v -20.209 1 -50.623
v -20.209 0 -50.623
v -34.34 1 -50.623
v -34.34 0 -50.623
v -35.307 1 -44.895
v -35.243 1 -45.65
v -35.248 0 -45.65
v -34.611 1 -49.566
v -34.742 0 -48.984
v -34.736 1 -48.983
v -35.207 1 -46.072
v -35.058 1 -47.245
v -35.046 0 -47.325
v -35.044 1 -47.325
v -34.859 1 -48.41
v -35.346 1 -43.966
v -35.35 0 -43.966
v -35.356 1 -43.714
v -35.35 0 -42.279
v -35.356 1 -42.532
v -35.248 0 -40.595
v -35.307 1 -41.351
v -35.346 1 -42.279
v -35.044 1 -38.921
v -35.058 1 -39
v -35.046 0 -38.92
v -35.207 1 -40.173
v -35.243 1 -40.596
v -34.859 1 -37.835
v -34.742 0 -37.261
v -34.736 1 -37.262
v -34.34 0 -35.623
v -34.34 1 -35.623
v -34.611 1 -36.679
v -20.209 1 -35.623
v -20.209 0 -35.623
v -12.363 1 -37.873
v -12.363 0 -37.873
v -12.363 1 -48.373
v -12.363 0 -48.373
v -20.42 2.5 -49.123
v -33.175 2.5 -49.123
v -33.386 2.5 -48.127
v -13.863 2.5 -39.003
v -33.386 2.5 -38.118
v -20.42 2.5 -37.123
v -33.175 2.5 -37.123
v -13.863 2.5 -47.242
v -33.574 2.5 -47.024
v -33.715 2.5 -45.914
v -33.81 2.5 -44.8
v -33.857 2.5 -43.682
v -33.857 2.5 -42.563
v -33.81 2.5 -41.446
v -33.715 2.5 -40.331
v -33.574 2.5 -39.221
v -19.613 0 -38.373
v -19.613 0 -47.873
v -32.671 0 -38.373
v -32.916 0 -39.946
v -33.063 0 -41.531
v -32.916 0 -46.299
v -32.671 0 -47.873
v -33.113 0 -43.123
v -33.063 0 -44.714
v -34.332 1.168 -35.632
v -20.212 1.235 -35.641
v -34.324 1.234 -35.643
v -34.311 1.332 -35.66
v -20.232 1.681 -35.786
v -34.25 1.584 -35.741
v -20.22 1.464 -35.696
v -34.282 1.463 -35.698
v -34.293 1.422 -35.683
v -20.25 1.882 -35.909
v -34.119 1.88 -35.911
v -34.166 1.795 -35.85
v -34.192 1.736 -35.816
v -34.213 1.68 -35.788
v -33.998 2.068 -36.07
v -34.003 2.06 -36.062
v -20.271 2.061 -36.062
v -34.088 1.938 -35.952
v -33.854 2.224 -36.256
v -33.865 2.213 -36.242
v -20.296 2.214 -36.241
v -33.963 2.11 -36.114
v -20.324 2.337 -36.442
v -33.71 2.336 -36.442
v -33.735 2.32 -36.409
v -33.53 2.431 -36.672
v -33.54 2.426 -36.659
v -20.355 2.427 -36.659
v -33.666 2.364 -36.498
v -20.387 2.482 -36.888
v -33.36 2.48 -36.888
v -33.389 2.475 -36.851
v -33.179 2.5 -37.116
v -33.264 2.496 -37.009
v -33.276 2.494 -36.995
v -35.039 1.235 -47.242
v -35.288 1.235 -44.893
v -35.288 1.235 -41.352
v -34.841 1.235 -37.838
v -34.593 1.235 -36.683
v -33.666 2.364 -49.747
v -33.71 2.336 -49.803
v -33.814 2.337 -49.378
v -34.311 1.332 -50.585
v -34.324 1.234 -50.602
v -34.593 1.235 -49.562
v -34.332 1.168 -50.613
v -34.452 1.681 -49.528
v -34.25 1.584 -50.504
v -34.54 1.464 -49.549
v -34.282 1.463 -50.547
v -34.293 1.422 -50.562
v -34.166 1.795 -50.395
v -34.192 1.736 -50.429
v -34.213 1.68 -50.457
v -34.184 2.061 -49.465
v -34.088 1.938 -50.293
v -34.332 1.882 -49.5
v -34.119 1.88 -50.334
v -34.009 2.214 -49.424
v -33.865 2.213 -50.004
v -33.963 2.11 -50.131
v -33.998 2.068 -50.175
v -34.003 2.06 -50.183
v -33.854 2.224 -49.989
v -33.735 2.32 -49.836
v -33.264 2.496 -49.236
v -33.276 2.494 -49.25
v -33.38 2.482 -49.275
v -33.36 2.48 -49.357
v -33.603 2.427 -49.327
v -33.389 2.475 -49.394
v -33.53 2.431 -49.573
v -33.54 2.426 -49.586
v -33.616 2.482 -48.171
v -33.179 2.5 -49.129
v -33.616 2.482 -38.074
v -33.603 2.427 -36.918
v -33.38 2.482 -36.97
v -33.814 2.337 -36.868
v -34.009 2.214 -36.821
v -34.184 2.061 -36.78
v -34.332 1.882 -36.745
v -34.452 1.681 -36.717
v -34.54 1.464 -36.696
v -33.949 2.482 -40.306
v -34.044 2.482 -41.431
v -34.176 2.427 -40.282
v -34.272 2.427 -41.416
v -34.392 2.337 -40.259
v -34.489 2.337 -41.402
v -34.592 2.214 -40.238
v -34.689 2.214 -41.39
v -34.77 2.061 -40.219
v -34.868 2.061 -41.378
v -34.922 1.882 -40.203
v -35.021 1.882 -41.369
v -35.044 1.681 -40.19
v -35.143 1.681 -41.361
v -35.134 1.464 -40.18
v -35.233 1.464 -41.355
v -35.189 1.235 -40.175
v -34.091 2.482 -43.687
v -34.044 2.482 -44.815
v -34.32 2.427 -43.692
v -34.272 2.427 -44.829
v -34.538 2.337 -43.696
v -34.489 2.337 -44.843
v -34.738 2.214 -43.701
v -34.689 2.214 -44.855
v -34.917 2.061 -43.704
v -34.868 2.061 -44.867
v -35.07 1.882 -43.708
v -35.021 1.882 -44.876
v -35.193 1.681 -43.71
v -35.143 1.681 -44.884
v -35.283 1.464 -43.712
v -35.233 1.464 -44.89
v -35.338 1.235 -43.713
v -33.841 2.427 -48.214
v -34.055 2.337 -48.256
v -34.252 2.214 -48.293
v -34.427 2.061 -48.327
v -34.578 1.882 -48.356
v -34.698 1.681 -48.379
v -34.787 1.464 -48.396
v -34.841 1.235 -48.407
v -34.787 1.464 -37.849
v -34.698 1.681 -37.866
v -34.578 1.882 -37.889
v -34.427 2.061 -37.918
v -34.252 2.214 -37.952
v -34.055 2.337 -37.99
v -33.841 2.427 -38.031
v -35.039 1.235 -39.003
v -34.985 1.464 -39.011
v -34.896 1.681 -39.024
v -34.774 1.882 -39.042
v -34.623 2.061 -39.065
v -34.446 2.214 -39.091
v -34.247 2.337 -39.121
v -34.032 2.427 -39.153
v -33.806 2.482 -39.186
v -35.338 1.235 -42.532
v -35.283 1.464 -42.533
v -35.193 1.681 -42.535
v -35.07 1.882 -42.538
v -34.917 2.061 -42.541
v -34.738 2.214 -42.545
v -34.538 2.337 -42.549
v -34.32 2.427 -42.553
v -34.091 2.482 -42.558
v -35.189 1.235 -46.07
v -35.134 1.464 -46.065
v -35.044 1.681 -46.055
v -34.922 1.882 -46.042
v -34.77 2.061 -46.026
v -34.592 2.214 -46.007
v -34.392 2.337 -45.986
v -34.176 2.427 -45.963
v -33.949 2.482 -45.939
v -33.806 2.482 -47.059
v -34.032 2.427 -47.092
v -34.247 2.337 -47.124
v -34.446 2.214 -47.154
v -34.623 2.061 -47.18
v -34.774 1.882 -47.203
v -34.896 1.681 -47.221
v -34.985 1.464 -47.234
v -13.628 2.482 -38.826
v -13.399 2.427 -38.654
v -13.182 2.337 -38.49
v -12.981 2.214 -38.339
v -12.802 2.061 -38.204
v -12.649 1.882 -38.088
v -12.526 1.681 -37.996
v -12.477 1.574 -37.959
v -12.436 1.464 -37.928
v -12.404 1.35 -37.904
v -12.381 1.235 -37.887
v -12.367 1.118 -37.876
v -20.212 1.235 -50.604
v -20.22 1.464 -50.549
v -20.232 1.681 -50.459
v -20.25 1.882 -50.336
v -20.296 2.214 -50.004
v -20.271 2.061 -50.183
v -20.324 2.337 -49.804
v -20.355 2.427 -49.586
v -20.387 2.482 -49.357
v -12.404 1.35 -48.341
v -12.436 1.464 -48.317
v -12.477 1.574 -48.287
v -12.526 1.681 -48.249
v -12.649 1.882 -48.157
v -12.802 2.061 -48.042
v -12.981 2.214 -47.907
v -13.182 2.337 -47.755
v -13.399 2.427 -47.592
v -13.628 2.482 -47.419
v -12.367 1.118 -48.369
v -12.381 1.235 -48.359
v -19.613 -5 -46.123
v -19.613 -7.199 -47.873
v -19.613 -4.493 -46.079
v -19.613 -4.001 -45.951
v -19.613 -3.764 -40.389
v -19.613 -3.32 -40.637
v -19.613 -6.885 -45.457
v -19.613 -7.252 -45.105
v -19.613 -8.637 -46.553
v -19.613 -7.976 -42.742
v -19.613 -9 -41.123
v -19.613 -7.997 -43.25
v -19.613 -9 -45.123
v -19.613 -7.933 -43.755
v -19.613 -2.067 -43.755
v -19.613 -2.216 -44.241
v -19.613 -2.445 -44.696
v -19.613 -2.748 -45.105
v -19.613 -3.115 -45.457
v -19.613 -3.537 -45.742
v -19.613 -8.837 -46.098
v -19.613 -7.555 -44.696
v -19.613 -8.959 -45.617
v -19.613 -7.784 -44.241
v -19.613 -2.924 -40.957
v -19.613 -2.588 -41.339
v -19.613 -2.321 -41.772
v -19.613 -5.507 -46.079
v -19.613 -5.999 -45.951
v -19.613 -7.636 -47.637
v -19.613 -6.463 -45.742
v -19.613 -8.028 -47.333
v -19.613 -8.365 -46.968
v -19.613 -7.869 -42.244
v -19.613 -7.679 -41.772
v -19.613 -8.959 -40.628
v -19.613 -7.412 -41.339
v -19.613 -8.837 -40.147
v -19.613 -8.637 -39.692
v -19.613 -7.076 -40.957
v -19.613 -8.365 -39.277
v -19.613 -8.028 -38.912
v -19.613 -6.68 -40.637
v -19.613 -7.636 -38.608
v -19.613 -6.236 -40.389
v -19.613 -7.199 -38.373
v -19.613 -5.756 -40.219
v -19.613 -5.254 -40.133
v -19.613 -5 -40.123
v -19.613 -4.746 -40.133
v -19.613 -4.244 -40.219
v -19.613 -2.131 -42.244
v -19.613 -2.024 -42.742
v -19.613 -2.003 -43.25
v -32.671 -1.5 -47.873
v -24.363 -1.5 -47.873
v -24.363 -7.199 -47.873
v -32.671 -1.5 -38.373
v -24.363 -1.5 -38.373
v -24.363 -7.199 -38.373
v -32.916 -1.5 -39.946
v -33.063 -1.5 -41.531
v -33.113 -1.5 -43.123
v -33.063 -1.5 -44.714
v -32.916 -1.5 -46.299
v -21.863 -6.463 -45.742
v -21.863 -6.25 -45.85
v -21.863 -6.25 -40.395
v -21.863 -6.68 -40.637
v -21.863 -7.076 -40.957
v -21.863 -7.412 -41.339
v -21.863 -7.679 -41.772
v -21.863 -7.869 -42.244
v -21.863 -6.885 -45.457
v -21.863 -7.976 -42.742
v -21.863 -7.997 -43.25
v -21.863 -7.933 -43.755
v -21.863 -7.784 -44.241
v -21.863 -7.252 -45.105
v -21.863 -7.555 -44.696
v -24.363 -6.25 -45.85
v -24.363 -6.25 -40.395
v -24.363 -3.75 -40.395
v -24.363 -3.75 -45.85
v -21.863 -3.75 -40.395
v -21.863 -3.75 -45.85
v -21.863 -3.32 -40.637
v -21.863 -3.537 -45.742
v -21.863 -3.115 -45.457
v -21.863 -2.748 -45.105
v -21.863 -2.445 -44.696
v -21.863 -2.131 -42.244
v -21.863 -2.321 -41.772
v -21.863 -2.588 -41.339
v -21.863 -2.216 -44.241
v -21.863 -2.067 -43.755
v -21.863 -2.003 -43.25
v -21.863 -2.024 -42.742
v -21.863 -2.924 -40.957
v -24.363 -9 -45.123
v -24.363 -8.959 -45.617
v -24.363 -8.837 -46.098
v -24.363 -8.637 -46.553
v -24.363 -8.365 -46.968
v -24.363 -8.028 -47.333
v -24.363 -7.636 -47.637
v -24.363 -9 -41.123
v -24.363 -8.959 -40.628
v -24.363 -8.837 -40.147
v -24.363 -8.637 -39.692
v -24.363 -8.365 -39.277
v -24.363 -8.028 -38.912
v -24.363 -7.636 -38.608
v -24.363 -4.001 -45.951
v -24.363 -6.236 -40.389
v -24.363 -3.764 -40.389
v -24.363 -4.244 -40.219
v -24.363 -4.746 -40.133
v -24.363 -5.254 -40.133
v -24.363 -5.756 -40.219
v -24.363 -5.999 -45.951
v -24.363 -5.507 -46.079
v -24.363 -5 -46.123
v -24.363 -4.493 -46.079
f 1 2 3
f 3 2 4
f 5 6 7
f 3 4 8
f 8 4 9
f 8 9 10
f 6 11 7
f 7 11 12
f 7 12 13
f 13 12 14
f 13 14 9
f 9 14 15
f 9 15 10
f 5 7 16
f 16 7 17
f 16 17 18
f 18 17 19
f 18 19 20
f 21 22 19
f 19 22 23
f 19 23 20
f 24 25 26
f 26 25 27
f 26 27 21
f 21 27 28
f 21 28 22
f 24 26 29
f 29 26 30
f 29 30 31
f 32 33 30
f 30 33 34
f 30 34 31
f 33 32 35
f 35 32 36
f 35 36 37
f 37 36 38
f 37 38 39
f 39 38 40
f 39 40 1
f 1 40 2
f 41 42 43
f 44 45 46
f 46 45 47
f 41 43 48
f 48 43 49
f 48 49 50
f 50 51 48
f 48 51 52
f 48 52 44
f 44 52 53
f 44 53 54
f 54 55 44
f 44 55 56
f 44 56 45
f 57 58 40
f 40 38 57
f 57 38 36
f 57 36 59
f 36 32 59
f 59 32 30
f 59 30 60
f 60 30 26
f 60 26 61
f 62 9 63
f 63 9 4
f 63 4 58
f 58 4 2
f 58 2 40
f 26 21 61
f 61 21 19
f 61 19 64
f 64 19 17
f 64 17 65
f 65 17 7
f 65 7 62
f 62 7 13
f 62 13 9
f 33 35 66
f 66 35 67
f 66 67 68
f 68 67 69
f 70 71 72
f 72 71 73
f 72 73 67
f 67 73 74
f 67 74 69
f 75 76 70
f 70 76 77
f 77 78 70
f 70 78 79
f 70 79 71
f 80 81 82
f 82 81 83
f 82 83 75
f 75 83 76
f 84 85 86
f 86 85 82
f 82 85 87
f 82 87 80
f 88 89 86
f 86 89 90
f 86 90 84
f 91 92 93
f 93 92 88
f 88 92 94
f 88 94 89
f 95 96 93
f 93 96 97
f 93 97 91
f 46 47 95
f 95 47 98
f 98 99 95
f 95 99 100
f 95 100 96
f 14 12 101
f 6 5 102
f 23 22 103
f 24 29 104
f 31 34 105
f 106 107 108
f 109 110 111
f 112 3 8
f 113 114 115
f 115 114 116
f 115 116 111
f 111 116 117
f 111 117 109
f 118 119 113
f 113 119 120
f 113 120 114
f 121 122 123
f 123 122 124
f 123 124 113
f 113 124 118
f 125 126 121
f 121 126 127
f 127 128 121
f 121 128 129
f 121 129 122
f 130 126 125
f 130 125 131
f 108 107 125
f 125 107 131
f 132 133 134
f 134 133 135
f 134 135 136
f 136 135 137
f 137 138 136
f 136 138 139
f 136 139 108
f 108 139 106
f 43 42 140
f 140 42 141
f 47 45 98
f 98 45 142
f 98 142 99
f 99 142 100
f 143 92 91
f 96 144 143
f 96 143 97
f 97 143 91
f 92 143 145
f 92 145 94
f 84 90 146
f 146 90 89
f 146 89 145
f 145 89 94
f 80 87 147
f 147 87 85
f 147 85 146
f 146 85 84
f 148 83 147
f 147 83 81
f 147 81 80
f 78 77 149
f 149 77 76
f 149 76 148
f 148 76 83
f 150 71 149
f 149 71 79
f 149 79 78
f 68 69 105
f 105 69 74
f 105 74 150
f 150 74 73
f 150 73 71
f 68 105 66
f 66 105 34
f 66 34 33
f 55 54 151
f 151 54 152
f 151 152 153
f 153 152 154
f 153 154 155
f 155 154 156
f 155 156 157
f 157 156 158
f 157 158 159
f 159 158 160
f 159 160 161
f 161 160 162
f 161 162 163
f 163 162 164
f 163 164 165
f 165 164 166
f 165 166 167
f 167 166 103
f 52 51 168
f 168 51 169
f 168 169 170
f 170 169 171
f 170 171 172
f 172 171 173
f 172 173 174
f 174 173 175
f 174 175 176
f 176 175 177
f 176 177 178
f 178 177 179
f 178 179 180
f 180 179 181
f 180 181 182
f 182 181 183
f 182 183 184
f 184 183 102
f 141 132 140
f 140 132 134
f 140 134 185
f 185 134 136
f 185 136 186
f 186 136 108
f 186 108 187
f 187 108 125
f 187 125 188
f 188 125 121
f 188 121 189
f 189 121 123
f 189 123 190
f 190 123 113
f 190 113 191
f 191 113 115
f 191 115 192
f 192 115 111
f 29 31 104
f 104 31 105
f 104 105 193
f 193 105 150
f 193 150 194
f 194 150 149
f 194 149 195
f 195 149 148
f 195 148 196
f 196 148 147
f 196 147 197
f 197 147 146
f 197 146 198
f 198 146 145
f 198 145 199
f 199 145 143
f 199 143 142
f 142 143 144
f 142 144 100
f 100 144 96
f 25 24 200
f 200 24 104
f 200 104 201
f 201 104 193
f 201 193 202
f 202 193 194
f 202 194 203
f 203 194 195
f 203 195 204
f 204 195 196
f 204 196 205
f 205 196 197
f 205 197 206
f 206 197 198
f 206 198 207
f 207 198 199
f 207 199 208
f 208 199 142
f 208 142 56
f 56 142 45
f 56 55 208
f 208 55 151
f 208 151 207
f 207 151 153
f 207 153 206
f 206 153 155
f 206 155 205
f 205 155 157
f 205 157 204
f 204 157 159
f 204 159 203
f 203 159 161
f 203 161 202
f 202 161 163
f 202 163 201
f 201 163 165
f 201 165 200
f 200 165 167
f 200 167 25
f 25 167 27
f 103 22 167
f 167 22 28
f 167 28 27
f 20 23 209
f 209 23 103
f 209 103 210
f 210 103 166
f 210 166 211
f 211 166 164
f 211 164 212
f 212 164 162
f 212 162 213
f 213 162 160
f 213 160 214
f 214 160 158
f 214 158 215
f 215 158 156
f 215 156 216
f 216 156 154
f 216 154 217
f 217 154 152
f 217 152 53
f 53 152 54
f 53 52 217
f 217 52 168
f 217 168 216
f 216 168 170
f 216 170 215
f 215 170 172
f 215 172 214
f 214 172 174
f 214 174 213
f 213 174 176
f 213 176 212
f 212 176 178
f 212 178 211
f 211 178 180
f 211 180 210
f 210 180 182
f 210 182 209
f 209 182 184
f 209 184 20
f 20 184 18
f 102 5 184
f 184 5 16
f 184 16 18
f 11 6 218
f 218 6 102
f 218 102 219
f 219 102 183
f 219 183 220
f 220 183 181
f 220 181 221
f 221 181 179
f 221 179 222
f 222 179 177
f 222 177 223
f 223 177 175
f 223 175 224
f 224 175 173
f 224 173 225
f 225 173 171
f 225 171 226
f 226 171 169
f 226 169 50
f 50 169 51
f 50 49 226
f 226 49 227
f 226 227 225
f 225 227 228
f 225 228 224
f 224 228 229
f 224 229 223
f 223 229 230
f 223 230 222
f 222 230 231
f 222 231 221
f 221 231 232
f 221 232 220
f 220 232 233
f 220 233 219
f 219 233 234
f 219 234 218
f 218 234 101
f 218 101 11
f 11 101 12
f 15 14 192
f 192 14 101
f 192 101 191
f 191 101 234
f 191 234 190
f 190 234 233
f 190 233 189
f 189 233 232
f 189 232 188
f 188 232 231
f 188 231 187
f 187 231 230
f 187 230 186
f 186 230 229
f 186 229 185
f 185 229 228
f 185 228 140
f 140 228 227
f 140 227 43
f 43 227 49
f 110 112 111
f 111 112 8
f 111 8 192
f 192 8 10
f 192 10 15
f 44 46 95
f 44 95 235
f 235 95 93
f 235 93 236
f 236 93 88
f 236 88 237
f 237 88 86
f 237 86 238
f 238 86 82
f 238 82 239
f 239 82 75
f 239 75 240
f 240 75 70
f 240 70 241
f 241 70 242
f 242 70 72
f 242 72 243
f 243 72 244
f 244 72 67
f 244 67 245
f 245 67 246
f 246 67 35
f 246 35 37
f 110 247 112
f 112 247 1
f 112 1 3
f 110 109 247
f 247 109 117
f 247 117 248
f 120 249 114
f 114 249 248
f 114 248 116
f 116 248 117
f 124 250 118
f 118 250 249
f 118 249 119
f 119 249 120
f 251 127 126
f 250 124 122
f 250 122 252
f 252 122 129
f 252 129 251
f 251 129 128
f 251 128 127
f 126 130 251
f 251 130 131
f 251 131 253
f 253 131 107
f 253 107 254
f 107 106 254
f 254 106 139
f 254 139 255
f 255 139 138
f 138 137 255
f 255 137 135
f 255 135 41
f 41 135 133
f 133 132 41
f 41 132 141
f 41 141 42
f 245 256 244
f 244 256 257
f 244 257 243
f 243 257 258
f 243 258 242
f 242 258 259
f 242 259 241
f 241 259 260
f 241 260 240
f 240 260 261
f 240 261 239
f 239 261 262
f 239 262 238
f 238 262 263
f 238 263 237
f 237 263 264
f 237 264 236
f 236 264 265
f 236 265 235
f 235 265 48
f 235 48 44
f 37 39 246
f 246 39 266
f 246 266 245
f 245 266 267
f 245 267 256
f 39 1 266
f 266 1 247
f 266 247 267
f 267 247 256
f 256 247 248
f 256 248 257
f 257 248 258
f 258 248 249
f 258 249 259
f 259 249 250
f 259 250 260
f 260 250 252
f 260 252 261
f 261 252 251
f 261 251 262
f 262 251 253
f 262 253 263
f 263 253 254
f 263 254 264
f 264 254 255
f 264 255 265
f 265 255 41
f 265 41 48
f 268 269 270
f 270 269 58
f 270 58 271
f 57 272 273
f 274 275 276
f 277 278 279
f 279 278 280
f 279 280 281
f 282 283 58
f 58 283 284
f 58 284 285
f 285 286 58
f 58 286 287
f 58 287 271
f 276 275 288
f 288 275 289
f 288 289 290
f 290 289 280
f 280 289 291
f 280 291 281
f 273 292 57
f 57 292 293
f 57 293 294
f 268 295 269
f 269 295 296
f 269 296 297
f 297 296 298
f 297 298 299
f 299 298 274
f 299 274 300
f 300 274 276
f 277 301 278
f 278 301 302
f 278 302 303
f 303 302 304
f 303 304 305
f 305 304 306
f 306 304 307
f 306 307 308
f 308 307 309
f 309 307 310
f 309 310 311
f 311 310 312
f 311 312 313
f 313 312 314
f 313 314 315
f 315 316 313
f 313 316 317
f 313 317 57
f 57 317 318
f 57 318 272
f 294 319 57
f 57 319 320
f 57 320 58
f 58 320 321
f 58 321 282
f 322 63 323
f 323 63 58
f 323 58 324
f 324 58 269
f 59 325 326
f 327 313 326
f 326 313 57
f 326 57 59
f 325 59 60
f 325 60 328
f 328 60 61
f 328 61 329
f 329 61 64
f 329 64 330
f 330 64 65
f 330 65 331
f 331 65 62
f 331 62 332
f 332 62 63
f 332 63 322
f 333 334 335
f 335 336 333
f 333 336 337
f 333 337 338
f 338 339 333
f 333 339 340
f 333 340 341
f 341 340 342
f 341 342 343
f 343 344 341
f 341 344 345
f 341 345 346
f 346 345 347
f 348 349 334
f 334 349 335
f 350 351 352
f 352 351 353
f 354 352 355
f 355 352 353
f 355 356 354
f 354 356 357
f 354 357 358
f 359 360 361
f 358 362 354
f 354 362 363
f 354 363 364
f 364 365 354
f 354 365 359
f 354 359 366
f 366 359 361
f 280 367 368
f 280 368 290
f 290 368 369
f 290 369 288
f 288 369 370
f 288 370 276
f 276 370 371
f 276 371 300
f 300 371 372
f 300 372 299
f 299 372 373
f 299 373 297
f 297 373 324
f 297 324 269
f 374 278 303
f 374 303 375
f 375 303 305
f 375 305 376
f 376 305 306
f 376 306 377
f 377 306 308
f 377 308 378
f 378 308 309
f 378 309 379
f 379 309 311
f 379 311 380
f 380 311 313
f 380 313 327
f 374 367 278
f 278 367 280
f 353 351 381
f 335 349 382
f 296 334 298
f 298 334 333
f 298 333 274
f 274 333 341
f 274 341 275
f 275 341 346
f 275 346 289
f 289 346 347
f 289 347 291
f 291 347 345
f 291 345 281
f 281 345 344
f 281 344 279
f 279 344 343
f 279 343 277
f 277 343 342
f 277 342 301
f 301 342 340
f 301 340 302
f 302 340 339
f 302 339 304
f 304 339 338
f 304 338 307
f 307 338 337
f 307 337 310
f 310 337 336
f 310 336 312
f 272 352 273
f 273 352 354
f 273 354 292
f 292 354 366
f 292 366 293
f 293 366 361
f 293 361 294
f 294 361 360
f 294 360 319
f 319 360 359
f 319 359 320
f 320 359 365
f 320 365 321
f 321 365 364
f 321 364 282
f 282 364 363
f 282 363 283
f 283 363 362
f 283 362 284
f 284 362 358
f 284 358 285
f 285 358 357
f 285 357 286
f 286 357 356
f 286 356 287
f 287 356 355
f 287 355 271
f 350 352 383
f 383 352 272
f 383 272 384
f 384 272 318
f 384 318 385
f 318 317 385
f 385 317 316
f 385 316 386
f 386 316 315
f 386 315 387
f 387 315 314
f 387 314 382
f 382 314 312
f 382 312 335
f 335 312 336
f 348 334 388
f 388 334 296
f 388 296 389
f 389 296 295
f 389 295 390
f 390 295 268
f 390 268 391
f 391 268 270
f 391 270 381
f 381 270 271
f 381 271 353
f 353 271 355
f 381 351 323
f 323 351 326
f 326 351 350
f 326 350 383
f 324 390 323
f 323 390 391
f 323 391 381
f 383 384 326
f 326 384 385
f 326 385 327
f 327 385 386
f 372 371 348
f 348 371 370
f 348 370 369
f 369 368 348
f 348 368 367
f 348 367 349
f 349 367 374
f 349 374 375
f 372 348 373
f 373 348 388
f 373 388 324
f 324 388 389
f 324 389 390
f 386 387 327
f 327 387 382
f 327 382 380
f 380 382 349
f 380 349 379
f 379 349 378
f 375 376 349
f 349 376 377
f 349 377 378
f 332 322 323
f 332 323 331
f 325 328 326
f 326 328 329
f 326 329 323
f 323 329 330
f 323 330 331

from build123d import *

# Parameters (mm, degrees)
BOSS_EXTRUDE1_DEPTH      = 2.5
BOSS_EXTRUDE2_DEPTH      = 1.5
BOSS_EXTRUDE2_DEPTH_BACK = 1.5
FILLET1_R                = 1.5
SKETCH5_W                = 5
SKETCH5_H                = 10
BOSS_EXTRUDE3_DEPTH      = 7.5
SKETCH6_R                = 3
CUT_EXTRUDE1_DEPTH       = 2.5
CUT_EXTRUDE2_DEPTH       = 2.5
FILLET2_R                = 3
CUT_EXTRUDE3_DEPTH       = 10


with BuildPart() as part:
    # Sketch1 → Boss-Extrude1 (new body)
    with BuildSketch(Plane(origin=(0, 0, 0), x_dir=(1, 0, 0), z_dir=(0, 1, 0))):
        with BuildLine():
            Line((-20.209371097, 50.622586501), (-32.257467167, 50.622586501))
            ThreePointArc((-32.257467167, 50.622586501), (-33.362688598, 43.122586501), (-32.257467167, 35.622586501))
            Line((-32.257467167, 35.622586501), (-20.209371097, 35.622586501))
            Line((-20.209371097, 35.622586501), (-12.362688598, 37.872586501))
            Line((-12.362688598, 37.872586501), (-12.362688598, 48.372586501))
            Line((-12.362688598, 48.372586501), (-20.209371097, 50.622586501))
        make_face()
        with BuildLine():
            Line((-32.257467167, 50.622586501), (-34.339530518, 50.622586501))
            ThreePointArc((-34.339530518, 50.622586501), (-35.362688598, 43.122586501), (-34.339530518, 35.622586501))
            Line((-34.339530518, 35.622586501), (-32.257467167, 35.622586501))
            ThreePointArc((-32.257467167, 35.622586501), (-33.362688598, 43.122586501), (-32.257467167, 50.622586501))
        make_face()
    extrude(amount=BOSS_EXTRUDE1_DEPTH)

    # Sketch4 → Boss-Extrude2 (add, two sides)
    with BuildSketch(Plane.XZ) as boss_extrude2_sk:
        with BuildLine():
            Line((-19.362688598, -38.122586501), (-32.877390242, -38.122586501))
            ThreePointArc((-32.877390242, -38.122586501), (-33.362688598, -43.122586501), (-32.877390242, -48.122586501))
            Line((-32.877390242, -48.122586501), (-19.362688598, -48.122586501))
            Line((-19.362688598, -48.122586501), (-19.362688598, -38.122586501))
        make_face()
    extrude(amount=BOSS_EXTRUDE2_DEPTH)
    extrude(boss_extrude2_sk.sketch, amount=-BOSS_EXTRUDE2_DEPTH_BACK)

    # Fillet1
    fillet1_edges = [part.edges().sort_by_distance(p)[0] for p in [
        (-27.274450808, 2.5, -35.622586501),
        (-16.286029847, 2.5, -36.747586501),
        (-12.362688598, 2.5, -43.122586501),
        (-16.286029847, 2.5, -49.497586501),
        (-27.274450808, 2.5, -50.622586501),
        (-35.362688598, 2.5, -43.122586501),
    ]]
    fillet(fillet1_edges, radius=FILLET1_R)

    # Sketch5 → Boss-Extrude3 (add)
    with BuildSketch(Plane.XZ.offset(1.5)):
        with Locations((-21.862688598, -43.122586501)):
            Rectangle(SKETCH5_W, SKETCH5_H)
    extrude(amount=BOSS_EXTRUDE3_DEPTH)

    # Sketch6 → Cut-Extrude1 (cut)
    with BuildSketch(Plane(origin=(-19.362688598, 0, 0), x_dir=(0, 0, -1), z_dir=(1, 0, 0))):
        with Locations((43.122586501, -5)):
            Circle(SKETCH6_R)
    extrude(amount=-CUT_EXTRUDE1_DEPTH, mode=Mode.SUBTRACT)

    # Sketch7 → Cut-Extrude2 (cut)
    with BuildSketch(Plane(origin=(-21.862688598, 0, 0), x_dir=(0, 0, -1), z_dir=(1, 0, 0))):
        with BuildLine():
            Line((45.84976453, -3.75), (40.395408473, -3.75))
            ThreePointArc((40.395408473, -3.75), (40.122586501, -5), (40.395408473, -6.25))
            Line((40.395408473, -6.25), (45.84976453, -6.25))
            ThreePointArc((45.84976453, -6.25), (46.053587532, -5.639713183), (46.122586501, -5))
            ThreePointArc((46.122586501, -5), (46.053587532, -4.360286817), (45.84976453, -3.75))
        make_face()
    extrude(amount=-CUT_EXTRUDE2_DEPTH, mode=Mode.SUBTRACT)

    # Fillet2
    fillet2_edges = [part.edges().sort_by_distance(p)[0] for p in [
        (-21.862688598, -9, -38.122586501),
        (-21.862688598, -9, -48.122586501),
    ]]
    fillet(fillet2_edges, radius=FILLET2_R)

    # Sketch8 → Cut-Extrude3 (cut)
    with BuildSketch(Plane.XZ):
        with BuildLine():
            Line((-19.362688598, -48.122586501), (-19.362688598, -38.122586501))
            Line((-19.362688598, -38.122586501), (-32.877390242, -38.122586501))
            ThreePointArc((-32.877390242, -38.122586501), (-33.362688598, -43.122586501), (-32.877390242, -48.122586501))
            Line((-32.877390242, -48.122586501), (-19.362688598, -48.122586501))
        make_face()
        with BuildLine():
            Line((-19.612688598, -47.872586501), (-19.612688598, -38.372586501))
            Line((-19.612688598, -38.372586501), (-32.670790068, -38.372586501))
            ThreePointArc((-32.670790068, -38.372586501), (-33.112688598, -43.122586501), (-32.670790068, -47.872586501))
            Line((-32.670790068, -47.872586501), (-19.612688598, -47.872586501))
        make_face(mode=Mode.SUBTRACT)
    extrude(amount=CUT_EXTRUDE3_DEPTH, mode=Mode.SUBTRACT)


solid = part.part
